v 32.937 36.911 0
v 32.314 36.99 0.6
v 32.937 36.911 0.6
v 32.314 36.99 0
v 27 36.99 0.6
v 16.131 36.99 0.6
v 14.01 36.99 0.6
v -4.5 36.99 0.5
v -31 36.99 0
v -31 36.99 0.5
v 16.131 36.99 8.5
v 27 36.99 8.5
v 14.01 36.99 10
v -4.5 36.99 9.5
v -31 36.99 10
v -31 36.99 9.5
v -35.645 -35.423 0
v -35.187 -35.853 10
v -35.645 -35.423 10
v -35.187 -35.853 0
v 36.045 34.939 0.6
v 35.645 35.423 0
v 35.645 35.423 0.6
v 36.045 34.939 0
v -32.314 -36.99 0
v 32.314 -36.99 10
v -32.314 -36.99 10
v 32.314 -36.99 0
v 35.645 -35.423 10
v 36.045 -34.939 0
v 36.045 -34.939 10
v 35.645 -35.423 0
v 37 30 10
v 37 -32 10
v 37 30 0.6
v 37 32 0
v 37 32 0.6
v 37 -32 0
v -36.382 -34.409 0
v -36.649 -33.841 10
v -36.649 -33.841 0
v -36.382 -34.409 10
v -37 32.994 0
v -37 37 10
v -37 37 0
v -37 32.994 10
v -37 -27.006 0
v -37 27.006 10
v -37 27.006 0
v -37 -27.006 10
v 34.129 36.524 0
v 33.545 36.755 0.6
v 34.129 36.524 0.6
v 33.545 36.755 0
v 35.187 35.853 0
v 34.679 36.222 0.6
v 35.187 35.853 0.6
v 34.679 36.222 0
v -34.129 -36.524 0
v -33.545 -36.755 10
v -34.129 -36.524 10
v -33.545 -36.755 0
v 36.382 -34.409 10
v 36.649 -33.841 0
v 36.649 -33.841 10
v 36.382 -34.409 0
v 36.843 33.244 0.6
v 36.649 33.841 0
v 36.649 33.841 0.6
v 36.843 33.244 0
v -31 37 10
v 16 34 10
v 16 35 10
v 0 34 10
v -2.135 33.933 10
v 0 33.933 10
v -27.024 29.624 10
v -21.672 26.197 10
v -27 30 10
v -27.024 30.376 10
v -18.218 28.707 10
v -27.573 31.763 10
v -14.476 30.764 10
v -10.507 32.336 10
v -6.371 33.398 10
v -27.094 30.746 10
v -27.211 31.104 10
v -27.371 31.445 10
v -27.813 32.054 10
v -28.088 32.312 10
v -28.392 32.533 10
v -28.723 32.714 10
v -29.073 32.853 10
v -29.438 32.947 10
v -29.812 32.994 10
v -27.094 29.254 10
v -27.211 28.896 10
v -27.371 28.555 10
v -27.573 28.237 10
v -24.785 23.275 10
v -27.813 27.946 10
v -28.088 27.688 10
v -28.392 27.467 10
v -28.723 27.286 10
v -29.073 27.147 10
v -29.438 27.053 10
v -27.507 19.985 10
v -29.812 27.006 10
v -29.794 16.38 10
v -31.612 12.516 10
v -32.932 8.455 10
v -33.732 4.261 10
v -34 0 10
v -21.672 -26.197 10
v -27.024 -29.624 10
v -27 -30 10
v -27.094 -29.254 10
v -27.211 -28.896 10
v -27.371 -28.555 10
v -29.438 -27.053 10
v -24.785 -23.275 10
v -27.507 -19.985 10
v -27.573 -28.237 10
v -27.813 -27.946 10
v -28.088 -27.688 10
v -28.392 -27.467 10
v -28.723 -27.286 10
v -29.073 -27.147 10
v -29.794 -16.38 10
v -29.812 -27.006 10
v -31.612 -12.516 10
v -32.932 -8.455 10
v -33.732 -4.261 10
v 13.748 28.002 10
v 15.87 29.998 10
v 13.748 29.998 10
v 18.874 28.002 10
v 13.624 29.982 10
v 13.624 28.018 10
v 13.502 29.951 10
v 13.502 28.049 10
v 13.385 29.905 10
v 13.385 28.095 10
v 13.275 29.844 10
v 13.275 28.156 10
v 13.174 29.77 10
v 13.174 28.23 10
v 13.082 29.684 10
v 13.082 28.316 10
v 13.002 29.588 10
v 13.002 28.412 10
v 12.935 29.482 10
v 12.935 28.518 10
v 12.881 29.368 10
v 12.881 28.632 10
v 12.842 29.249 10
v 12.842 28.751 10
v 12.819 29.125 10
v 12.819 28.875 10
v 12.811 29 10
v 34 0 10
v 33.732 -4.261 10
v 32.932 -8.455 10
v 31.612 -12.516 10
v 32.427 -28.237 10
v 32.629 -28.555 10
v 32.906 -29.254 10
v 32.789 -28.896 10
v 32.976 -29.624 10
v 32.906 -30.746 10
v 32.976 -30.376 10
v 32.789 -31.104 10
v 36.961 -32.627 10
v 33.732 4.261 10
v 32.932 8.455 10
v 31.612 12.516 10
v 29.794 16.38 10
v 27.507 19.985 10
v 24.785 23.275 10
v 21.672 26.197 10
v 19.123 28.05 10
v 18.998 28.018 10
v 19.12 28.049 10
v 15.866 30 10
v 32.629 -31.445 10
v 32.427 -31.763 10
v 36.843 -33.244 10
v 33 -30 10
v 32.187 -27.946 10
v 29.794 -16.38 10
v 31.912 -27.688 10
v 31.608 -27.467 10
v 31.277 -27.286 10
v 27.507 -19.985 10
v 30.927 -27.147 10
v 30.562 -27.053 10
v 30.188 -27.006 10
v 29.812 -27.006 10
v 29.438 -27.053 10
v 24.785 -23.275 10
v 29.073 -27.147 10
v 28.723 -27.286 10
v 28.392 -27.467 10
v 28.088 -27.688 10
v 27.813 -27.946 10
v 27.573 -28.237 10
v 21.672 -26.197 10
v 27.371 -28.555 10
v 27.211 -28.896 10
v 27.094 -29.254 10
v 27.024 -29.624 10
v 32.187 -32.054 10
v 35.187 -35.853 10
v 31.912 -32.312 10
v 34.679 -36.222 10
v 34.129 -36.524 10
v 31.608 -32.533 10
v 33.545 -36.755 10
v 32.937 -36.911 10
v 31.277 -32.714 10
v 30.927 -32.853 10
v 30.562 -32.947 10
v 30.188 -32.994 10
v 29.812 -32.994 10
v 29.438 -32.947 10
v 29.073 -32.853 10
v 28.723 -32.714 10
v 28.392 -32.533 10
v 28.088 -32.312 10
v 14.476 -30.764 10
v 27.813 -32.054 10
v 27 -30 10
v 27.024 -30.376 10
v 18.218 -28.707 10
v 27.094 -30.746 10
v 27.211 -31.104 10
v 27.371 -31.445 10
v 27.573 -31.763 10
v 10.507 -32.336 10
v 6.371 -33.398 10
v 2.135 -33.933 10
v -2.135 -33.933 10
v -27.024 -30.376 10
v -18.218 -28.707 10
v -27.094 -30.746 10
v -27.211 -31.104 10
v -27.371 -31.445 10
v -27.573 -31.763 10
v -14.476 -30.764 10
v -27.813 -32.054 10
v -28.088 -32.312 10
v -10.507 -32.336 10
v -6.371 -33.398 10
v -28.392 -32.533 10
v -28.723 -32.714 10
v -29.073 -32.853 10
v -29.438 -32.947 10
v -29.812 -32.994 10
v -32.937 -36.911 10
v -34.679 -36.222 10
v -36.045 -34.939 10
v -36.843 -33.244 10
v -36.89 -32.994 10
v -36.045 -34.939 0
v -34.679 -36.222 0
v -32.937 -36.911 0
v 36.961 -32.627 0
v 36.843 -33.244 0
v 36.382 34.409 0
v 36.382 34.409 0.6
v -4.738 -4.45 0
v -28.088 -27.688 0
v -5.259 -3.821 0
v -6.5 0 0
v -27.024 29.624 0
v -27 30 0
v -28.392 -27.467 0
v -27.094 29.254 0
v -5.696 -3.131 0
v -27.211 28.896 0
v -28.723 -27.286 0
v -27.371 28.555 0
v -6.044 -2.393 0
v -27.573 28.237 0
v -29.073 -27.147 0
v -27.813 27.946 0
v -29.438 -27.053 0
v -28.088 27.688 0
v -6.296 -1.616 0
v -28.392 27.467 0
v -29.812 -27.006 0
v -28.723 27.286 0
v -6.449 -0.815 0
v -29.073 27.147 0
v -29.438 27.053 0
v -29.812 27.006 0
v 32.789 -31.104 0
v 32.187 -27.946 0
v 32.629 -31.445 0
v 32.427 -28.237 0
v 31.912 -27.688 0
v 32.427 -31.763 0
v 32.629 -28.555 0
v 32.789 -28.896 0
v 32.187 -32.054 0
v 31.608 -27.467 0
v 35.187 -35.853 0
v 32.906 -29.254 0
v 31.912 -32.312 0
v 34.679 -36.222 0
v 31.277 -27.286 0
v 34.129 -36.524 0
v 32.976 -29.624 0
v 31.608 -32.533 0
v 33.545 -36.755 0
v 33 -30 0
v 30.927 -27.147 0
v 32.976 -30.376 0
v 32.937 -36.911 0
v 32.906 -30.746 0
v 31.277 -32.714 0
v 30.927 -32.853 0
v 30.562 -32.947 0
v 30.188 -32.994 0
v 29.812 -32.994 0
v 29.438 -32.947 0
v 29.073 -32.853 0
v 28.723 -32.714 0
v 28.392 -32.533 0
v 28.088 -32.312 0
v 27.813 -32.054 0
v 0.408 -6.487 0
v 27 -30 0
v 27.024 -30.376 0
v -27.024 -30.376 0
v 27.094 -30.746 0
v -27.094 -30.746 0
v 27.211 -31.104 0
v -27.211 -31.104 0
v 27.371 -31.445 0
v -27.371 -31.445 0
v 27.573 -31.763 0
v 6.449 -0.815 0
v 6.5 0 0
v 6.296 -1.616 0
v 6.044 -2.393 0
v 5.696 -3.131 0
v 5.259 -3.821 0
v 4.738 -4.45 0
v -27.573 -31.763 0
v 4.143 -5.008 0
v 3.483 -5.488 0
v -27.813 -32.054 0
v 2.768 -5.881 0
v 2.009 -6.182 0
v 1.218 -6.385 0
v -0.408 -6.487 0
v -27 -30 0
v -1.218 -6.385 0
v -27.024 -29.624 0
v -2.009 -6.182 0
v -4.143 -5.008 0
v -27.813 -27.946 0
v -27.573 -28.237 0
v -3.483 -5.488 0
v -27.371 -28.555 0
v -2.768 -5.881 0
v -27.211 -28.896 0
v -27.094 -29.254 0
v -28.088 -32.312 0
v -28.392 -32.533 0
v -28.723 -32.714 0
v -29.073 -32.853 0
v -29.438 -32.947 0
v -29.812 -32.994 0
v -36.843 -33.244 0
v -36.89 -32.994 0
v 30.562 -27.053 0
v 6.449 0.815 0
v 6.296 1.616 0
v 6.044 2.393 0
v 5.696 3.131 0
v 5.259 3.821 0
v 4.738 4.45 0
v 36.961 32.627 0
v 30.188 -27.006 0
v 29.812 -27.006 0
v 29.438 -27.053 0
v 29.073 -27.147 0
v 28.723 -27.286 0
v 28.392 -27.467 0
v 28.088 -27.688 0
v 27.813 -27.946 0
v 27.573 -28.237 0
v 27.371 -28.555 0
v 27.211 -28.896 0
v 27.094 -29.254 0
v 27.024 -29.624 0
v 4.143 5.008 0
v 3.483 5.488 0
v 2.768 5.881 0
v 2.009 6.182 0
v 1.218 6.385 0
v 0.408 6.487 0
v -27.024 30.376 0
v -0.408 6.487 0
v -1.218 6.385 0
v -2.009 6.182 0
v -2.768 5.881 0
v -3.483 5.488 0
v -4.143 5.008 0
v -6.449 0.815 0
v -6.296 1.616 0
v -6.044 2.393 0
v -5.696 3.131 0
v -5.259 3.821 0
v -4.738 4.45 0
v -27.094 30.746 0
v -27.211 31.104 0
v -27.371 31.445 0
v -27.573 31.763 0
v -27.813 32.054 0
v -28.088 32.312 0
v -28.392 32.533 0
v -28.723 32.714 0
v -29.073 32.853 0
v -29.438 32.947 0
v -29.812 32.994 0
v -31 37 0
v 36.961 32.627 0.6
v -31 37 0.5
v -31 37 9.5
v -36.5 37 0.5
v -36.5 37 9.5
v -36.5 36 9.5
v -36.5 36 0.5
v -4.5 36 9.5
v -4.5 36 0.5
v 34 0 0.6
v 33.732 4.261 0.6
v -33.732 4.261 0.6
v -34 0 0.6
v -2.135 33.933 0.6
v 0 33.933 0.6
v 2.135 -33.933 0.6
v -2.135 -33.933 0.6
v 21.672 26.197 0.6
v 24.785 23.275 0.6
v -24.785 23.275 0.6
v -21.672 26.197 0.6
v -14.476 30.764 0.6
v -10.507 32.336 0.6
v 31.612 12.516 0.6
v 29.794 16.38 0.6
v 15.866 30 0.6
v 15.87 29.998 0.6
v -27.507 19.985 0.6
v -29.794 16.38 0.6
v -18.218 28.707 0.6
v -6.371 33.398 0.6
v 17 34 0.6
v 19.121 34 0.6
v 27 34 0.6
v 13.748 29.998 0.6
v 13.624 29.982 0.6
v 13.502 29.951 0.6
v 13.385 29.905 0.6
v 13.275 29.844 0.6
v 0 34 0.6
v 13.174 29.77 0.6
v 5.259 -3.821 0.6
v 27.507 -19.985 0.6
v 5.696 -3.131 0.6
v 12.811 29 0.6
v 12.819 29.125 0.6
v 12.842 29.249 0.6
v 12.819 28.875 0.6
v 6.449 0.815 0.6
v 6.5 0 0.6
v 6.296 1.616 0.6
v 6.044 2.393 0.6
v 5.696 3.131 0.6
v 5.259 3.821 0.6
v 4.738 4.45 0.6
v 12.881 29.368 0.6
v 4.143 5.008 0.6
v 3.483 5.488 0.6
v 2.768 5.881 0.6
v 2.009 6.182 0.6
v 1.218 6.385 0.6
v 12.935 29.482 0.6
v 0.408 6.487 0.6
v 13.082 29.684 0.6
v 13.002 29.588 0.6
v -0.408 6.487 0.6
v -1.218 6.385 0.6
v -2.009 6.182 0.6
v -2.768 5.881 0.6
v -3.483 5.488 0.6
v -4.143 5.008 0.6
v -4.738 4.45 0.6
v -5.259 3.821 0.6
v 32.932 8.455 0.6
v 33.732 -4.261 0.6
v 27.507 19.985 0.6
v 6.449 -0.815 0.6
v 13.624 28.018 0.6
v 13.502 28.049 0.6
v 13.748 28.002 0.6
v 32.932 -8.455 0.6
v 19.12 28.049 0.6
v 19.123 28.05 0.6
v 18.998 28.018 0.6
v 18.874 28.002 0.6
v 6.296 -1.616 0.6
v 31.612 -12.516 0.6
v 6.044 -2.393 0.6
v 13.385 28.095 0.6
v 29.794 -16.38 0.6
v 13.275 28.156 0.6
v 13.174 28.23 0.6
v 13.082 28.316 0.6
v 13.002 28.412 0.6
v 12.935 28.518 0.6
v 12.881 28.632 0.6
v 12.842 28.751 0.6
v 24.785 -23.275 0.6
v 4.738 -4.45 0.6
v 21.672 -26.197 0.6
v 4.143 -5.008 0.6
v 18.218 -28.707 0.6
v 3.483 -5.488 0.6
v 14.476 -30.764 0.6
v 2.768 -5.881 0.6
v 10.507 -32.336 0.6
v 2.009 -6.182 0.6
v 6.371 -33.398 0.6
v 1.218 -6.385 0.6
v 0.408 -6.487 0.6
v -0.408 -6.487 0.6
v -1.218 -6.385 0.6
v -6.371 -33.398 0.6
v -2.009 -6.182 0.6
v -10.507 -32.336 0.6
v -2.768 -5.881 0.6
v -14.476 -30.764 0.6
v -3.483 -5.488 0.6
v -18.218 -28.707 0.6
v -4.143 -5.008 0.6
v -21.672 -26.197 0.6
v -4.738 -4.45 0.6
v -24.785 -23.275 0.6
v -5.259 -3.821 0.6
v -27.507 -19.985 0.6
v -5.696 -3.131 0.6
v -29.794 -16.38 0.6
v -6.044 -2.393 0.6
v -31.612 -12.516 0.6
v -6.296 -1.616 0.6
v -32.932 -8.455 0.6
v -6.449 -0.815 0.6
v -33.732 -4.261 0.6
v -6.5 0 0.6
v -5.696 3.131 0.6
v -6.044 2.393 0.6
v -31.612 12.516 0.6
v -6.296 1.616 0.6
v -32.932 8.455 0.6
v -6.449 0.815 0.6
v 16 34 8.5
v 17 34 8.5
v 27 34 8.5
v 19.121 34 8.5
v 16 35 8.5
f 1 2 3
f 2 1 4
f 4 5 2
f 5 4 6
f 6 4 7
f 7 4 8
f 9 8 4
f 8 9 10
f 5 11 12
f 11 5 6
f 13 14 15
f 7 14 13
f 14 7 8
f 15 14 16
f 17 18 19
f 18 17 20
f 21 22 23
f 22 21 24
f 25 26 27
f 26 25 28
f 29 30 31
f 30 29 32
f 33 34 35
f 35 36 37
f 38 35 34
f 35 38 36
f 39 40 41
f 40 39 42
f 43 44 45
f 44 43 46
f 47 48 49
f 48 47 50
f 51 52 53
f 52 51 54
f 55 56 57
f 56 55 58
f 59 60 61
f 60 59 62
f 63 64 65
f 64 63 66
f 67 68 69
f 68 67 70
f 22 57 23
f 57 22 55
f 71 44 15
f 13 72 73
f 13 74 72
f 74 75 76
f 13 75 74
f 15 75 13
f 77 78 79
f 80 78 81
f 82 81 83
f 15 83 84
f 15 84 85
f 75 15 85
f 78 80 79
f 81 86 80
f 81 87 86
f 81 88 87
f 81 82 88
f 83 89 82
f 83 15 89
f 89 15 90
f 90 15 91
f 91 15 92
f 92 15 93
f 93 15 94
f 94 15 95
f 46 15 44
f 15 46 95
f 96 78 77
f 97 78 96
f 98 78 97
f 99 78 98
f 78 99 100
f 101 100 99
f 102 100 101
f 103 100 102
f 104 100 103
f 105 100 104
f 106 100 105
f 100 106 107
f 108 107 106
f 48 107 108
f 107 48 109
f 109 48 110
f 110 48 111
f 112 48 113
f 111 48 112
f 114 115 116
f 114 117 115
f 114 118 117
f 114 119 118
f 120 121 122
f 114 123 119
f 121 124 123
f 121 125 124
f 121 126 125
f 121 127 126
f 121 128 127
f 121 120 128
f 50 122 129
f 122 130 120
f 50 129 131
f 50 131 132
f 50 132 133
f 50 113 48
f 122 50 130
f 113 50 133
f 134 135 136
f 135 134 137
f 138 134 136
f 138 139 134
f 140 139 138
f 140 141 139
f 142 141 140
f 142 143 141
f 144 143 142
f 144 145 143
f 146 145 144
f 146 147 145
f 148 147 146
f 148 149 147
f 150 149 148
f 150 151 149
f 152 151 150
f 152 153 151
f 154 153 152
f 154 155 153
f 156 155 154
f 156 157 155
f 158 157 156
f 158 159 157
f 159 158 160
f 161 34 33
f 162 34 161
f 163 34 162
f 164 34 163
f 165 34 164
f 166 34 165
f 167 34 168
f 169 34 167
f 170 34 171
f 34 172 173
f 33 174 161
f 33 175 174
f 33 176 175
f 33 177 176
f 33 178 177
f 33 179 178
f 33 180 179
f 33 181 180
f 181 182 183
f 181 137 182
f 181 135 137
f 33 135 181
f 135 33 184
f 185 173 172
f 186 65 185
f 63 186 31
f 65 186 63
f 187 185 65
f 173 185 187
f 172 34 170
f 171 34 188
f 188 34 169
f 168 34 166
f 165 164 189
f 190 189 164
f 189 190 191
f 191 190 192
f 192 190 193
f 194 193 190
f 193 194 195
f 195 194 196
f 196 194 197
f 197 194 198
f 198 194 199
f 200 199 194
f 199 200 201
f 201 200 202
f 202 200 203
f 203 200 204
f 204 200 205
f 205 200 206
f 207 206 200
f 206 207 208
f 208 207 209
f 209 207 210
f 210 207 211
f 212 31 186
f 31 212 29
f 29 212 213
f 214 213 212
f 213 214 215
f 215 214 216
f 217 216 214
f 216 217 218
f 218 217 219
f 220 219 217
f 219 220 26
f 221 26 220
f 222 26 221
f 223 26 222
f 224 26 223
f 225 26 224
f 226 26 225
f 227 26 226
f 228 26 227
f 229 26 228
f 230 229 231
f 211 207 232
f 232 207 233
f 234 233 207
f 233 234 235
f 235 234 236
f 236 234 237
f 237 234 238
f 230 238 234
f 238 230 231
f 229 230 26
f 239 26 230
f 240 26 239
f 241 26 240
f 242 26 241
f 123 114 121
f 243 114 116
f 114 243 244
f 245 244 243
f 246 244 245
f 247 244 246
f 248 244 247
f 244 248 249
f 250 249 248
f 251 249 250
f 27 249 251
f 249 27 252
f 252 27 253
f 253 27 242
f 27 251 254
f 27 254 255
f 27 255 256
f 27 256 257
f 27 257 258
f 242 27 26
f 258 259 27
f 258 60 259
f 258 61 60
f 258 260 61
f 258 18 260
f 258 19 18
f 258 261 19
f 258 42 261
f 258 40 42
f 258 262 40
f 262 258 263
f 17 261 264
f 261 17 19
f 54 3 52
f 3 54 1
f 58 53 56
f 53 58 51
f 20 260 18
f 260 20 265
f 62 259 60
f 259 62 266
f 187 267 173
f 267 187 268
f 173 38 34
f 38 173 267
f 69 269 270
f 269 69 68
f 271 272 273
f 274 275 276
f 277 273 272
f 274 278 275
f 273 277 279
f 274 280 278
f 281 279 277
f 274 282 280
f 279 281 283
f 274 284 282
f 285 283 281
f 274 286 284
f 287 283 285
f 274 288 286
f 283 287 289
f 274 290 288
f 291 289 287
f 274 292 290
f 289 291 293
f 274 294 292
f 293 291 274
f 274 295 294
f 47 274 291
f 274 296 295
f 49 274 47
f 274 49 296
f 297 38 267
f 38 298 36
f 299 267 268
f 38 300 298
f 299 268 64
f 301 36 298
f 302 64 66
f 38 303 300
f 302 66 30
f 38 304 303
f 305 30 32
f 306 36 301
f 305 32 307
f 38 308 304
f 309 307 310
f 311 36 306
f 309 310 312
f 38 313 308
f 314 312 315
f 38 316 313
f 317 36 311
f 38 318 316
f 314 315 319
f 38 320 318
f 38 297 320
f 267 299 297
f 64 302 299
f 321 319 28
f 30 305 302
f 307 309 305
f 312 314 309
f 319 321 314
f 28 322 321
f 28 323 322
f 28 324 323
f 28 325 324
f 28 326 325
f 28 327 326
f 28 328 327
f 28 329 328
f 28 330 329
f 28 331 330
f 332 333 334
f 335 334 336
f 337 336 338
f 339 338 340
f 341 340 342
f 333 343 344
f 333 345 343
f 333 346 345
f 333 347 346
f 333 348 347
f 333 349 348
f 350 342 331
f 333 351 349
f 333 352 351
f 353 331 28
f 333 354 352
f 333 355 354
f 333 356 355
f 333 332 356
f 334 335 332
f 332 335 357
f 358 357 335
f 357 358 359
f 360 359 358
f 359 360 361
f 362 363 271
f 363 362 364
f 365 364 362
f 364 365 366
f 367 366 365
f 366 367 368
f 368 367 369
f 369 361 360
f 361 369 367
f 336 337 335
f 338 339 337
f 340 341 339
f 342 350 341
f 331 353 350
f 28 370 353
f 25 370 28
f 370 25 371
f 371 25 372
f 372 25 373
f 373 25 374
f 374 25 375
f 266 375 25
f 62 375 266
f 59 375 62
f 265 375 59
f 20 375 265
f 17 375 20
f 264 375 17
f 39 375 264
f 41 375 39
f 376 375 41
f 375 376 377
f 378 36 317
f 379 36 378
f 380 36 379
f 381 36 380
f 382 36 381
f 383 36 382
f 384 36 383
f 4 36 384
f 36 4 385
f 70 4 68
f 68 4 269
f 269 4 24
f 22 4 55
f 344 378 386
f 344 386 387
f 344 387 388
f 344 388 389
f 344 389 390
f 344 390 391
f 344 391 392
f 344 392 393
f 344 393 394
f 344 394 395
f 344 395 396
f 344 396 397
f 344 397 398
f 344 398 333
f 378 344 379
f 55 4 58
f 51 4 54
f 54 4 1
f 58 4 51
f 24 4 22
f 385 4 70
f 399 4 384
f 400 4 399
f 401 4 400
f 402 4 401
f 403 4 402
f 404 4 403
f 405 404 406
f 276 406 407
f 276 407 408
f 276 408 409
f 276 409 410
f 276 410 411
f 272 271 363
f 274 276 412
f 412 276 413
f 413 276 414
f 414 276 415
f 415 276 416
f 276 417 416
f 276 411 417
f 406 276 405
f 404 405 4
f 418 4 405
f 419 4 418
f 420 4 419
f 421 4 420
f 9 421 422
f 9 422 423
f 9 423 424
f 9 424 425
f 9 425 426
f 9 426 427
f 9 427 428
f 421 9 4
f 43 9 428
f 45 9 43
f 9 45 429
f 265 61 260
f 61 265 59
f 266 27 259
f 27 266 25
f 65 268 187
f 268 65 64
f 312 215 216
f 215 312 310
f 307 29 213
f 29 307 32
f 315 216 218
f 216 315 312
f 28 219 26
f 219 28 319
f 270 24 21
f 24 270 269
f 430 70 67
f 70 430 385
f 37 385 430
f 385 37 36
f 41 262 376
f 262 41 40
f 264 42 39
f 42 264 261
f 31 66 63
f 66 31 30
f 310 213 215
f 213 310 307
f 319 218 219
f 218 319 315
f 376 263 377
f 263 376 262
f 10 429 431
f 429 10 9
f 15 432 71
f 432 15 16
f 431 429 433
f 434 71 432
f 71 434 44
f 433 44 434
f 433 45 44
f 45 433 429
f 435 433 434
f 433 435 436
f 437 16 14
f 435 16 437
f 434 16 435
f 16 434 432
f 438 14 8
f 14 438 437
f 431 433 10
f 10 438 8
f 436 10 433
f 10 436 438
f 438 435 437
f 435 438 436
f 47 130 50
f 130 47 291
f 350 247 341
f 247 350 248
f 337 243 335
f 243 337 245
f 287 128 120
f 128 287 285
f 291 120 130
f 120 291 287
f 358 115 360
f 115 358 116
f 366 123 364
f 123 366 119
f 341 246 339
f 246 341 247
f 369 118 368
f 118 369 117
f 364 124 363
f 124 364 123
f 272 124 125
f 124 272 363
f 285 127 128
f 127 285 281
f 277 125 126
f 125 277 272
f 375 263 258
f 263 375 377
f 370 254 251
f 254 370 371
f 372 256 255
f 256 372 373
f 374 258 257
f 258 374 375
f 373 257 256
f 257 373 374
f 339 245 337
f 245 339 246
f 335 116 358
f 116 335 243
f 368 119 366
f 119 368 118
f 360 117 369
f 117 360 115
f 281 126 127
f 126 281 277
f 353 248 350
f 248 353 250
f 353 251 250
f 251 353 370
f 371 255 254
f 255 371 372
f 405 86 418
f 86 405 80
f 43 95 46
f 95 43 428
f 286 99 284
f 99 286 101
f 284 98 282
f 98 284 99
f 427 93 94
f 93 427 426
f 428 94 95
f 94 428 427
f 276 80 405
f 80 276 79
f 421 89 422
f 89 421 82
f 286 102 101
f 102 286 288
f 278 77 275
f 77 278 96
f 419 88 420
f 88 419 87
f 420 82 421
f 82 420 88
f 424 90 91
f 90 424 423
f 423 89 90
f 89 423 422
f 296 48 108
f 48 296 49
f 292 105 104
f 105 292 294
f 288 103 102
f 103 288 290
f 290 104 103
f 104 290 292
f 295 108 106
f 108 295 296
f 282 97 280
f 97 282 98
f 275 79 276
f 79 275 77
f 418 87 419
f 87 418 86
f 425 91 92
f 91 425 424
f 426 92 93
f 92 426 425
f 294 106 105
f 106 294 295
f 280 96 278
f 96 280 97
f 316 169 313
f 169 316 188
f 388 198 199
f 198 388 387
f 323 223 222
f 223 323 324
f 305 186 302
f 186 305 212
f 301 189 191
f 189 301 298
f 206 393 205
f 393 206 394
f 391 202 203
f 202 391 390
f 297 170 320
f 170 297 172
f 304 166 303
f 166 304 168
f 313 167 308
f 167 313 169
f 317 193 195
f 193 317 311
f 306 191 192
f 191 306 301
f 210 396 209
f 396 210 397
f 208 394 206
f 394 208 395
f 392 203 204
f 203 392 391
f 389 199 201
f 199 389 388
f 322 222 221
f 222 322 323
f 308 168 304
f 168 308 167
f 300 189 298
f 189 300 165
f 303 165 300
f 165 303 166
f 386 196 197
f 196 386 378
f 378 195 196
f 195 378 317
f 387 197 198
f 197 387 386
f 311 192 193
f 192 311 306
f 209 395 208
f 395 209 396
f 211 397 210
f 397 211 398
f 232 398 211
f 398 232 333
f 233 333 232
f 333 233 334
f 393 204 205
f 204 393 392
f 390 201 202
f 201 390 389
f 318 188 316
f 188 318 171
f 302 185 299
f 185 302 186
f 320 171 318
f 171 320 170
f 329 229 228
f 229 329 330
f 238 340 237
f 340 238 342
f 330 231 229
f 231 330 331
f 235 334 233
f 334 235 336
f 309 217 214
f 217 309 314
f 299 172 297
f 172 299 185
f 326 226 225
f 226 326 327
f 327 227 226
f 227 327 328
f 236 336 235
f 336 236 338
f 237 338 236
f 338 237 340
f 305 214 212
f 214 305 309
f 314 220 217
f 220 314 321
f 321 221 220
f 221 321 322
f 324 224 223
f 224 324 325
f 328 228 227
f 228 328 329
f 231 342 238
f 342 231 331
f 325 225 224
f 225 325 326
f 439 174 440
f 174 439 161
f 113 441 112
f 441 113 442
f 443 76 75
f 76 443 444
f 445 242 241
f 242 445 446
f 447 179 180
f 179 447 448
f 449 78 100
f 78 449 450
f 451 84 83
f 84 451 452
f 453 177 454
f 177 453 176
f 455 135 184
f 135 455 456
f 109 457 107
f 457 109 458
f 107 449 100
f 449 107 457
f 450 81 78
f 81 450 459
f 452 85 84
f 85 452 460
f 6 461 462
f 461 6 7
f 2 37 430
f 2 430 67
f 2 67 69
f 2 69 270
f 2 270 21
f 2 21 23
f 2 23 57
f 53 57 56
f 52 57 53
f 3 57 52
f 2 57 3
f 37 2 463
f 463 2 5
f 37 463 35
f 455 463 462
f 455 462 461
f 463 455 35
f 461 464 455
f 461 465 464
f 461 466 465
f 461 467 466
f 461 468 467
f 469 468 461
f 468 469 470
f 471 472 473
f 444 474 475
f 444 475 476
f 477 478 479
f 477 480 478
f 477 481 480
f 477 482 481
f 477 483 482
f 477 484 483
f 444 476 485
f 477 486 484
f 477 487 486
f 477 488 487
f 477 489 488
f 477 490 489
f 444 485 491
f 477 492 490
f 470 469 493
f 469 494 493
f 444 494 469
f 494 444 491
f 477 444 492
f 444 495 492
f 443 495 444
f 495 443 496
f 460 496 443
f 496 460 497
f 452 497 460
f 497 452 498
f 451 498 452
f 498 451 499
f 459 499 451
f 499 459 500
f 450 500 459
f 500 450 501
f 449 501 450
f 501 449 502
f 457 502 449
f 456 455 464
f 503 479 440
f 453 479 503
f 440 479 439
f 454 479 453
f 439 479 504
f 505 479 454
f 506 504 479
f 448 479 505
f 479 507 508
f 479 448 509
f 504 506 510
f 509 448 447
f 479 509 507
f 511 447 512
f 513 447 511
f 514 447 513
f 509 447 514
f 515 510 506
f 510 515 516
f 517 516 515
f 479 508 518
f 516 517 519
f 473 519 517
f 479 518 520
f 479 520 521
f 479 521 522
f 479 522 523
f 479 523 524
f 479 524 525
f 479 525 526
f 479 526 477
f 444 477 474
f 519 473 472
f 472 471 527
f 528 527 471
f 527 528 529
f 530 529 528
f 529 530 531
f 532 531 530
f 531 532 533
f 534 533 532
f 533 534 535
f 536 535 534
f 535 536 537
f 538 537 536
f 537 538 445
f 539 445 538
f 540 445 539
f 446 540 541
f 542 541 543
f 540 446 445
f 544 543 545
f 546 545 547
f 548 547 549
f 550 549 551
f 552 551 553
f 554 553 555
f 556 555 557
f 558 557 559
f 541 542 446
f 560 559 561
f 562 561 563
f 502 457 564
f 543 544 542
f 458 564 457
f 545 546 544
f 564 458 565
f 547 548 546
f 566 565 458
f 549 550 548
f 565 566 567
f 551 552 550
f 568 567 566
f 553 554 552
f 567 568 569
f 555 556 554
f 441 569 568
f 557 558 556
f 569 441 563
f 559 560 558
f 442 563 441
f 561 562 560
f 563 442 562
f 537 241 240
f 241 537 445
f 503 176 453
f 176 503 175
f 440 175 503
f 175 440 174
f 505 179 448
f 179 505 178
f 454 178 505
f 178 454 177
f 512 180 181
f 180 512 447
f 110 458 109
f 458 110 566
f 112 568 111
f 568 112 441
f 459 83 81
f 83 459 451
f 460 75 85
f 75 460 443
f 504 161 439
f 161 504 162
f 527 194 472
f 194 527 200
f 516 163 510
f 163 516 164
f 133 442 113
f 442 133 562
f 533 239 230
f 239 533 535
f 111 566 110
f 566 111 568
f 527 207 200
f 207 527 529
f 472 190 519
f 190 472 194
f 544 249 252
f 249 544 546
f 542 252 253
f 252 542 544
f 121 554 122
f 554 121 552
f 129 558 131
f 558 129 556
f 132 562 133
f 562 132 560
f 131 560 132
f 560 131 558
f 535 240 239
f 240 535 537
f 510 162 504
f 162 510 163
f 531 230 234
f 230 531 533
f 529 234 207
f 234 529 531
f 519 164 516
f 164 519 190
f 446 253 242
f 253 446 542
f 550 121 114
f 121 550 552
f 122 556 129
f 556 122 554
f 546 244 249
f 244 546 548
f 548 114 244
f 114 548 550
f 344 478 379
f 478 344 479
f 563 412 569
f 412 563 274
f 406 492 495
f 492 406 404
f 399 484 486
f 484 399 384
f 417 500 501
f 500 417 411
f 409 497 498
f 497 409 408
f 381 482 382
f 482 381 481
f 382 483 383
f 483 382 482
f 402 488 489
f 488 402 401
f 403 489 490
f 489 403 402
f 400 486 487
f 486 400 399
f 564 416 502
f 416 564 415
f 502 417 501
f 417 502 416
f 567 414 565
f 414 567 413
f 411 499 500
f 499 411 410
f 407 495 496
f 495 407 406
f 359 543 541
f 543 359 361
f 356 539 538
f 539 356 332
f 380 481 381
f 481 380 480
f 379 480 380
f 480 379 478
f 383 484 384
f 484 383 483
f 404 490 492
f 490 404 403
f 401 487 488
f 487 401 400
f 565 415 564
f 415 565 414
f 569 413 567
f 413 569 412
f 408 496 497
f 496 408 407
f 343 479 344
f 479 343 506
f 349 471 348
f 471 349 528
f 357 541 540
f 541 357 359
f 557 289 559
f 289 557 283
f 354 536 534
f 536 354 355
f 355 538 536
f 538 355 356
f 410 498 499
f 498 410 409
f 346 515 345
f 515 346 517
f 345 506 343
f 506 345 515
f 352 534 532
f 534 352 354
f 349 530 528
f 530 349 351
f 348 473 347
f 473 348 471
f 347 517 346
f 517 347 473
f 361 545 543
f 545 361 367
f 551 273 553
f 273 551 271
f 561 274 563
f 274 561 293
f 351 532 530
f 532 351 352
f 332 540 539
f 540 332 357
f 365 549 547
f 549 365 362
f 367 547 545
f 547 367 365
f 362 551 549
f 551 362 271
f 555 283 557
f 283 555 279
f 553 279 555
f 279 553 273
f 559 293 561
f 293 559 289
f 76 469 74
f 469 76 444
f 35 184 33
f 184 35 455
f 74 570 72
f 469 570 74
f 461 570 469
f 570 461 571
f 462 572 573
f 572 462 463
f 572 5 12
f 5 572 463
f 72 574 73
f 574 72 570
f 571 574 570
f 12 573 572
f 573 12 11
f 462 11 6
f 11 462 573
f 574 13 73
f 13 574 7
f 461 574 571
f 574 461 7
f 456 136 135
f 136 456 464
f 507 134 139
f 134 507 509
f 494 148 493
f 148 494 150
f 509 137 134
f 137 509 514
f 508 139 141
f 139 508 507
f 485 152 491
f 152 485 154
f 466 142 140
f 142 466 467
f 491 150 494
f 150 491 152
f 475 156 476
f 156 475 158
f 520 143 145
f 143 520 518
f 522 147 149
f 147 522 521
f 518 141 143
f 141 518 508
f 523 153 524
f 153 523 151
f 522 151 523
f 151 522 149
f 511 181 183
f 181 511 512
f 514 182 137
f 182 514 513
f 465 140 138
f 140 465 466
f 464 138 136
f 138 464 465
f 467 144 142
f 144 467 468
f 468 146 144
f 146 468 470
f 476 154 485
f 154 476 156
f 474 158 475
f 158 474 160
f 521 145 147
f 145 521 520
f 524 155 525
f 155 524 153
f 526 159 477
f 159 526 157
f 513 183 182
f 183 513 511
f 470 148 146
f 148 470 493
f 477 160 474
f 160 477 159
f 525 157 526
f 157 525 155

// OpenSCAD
$fn = 50;


union() {
	difference() {
		union() {
			translate(v = [0, 0, 0]) {
				rotate(a = [0, 0, 0]) {
					hull() {
						translate(v = [-32.0000000000, 32.0000000000, 0]) {
							rotate(a = [0, 0, 0]) {
								translate(v = [0, 0, 0]) {
									rotate(a = [0, 0, 0]) {
										cylinder(h = 10, r = 5);
									}
								}
							}
						}
						translate(v = [32.0000000000, 32.0000000000, 0]) {
							rotate(a = [0, 0, 0]) {
								translate(v = [0, 0, 0]) {
									rotate(a = [0, 0, 0]) {
										cylinder(h = 10, r = 5);
									}
								}
							}
						}
						translate(v = [-32.0000000000, -32.0000000000, 0]) {
							rotate(a = [0, 0, 0]) {
								translate(v = [0, 0, 0]) {
									rotate(a = [0, 0, 0]) {
										cylinder(h = 10, r = 5);
									}
								}
							}
						}
						translate(v = [32.0000000000, -32.0000000000, 0]) {
							rotate(a = [0, 0, 0]) {
								translate(v = [0, 0, 0]) {
									rotate(a = [0, 0, 0]) {
										cylinder(h = 10, r = 5);
									}
								}
							}
						}
					}
				}
			}
			translate(v = [-37.0000000000, 31.0000000000, 0]) {
				rotate(a = [0, 0, 0]) {
					cube(size = [6, 6, 10]);
				}
			}
		}
		union() {
			#translate(v = [-36.5000000000, 36.0000000000, 0.5000000000]) {
				rotate(a = [0, 0, 0]) {
					cube(size = [32, 1, 9.0000000000]);
				}
			}
			translate(v = [-37.5000000000, -30.0000000000, -125]) {
				rotate(a = [0, 0, 0]) {
					hull() {
						translate(v = [7.5000000000, 0, 0]) {
							rotate(a = [0, 0, 0]) {
								translate(v = [0, 0, 0]) {
									rotate(a = [0, 0, 0]) {
										cylinder(h = 250, r = 3.0000000000);
									}
								}
							}
						}
						translate(v = [-7.5000000000, 0, 0]) {
							rotate(a = [0, 0, 0]) {
								translate(v = [0, 0, 0]) {
									rotate(a = [0, 0, 0]) {
										cylinder(h = 250, r = 3.0000000000);
									}
								}
							}
						}
					}
				}
			}
			translate(v = [-37.5000000000, 30.0000000000, -125]) {
				rotate(a = [0, 0, 0]) {
					hull() {
						translate(v = [7.5000000000, 0, 0]) {
							rotate(a = [0, 0, 0]) {
								translate(v = [0, 0, 0]) {
									rotate(a = [0, 0, 0]) {
										cylinder(h = 250, r = 3.0000000000);
									}
								}
							}
						}
						translate(v = [-7.5000000000, 0, 0]) {
							rotate(a = [0, 0, 0]) {
								translate(v = [0, 0, 0]) {
									rotate(a = [0, 0, 0]) {
										cylinder(h = 250, r = 3.0000000000);
									}
								}
							}
						}
					}
				}
			}
			translate(v = [30.0000000000, -30.0000000000, -125.0000000000]) {
				rotate(a = [0, 0, 0]) {
					cylinder(h = 250, r = 3.0000000000);
				}
			}
			translate(v = [0, 0, 0.6000000000]) {
				rotate(a = [0, 0, 0]) {
					cylinder(h = 12.4000000000, r = 34.0000000000);
				}
			}
			translate(v = [0, 0, -5.0000000000]) {
				rotate(a = [0, 0, 0]) {
					cylinder(h = 10, r = 6.5000000000);
				}
			}
			translate(v = [0.0000000000, 30.0000000000, 0.6000000000]) {
				rotate(a = [0, 0, 0]) {
					cube(size = [37.0000000000, 4, 12.4000000000]);
				}
			}
			translate(v = [27.0000000000, 30.0000000000, 0.6000000000]) {
				rotate(a = [0, 0, 0]) {
					cube(size = [10, 7, 12.4000000000]);
				}
			}
			translate(v = [16.0000000000, 30.0000000000, 8.5000000000]) {
				rotate(a = [0, 0, 0]) {
					cube(size = [21, 7, 1.5000000000]);
				}
			}
			translate(v = [13.2500000000, 37.7500000000, 0.6000000000]) {
				rotate(a = [0, 0, -45]) {
					cube(size = [7.5000000000, 1.5000000000, 12.4000000000]);
				}
			}
			translate(v = [7.0610000000, 28.0000000000, 0.6000000000]) {
				rotate(a = [0, 0, 0]) {
					cube(size = [7.5000000000, 2, 9.4000000000]);
				}
			}
		}
	}
	union() {
		translate(v = [16.3110000000, 29.0000000000, 0]) {
			rotate(a = [0, 0, 0]) {
				hull() {
					translate(v = [2.5000000000, 0, 0]) {
						rotate(a = [0, 0, 0]) {
							#translate(v = [0, 0, 0]) {
								rotate(a = [0, 0, 0]) {
									cylinder(h = 10, r = 1.0000000000);
								}
							}
						}
					}
					translate(v = [-2.5000000000, 0, 0]) {
						rotate(a = [0, 0, 0]) {
							#translate(v = [0, 0, 0]) {
								rotate(a = [0, 0, 0]) {
									cylinder(h = 10, r = 1.0000000000);
								}
							}
						}
					}
				}
			}
		}
	}
}
